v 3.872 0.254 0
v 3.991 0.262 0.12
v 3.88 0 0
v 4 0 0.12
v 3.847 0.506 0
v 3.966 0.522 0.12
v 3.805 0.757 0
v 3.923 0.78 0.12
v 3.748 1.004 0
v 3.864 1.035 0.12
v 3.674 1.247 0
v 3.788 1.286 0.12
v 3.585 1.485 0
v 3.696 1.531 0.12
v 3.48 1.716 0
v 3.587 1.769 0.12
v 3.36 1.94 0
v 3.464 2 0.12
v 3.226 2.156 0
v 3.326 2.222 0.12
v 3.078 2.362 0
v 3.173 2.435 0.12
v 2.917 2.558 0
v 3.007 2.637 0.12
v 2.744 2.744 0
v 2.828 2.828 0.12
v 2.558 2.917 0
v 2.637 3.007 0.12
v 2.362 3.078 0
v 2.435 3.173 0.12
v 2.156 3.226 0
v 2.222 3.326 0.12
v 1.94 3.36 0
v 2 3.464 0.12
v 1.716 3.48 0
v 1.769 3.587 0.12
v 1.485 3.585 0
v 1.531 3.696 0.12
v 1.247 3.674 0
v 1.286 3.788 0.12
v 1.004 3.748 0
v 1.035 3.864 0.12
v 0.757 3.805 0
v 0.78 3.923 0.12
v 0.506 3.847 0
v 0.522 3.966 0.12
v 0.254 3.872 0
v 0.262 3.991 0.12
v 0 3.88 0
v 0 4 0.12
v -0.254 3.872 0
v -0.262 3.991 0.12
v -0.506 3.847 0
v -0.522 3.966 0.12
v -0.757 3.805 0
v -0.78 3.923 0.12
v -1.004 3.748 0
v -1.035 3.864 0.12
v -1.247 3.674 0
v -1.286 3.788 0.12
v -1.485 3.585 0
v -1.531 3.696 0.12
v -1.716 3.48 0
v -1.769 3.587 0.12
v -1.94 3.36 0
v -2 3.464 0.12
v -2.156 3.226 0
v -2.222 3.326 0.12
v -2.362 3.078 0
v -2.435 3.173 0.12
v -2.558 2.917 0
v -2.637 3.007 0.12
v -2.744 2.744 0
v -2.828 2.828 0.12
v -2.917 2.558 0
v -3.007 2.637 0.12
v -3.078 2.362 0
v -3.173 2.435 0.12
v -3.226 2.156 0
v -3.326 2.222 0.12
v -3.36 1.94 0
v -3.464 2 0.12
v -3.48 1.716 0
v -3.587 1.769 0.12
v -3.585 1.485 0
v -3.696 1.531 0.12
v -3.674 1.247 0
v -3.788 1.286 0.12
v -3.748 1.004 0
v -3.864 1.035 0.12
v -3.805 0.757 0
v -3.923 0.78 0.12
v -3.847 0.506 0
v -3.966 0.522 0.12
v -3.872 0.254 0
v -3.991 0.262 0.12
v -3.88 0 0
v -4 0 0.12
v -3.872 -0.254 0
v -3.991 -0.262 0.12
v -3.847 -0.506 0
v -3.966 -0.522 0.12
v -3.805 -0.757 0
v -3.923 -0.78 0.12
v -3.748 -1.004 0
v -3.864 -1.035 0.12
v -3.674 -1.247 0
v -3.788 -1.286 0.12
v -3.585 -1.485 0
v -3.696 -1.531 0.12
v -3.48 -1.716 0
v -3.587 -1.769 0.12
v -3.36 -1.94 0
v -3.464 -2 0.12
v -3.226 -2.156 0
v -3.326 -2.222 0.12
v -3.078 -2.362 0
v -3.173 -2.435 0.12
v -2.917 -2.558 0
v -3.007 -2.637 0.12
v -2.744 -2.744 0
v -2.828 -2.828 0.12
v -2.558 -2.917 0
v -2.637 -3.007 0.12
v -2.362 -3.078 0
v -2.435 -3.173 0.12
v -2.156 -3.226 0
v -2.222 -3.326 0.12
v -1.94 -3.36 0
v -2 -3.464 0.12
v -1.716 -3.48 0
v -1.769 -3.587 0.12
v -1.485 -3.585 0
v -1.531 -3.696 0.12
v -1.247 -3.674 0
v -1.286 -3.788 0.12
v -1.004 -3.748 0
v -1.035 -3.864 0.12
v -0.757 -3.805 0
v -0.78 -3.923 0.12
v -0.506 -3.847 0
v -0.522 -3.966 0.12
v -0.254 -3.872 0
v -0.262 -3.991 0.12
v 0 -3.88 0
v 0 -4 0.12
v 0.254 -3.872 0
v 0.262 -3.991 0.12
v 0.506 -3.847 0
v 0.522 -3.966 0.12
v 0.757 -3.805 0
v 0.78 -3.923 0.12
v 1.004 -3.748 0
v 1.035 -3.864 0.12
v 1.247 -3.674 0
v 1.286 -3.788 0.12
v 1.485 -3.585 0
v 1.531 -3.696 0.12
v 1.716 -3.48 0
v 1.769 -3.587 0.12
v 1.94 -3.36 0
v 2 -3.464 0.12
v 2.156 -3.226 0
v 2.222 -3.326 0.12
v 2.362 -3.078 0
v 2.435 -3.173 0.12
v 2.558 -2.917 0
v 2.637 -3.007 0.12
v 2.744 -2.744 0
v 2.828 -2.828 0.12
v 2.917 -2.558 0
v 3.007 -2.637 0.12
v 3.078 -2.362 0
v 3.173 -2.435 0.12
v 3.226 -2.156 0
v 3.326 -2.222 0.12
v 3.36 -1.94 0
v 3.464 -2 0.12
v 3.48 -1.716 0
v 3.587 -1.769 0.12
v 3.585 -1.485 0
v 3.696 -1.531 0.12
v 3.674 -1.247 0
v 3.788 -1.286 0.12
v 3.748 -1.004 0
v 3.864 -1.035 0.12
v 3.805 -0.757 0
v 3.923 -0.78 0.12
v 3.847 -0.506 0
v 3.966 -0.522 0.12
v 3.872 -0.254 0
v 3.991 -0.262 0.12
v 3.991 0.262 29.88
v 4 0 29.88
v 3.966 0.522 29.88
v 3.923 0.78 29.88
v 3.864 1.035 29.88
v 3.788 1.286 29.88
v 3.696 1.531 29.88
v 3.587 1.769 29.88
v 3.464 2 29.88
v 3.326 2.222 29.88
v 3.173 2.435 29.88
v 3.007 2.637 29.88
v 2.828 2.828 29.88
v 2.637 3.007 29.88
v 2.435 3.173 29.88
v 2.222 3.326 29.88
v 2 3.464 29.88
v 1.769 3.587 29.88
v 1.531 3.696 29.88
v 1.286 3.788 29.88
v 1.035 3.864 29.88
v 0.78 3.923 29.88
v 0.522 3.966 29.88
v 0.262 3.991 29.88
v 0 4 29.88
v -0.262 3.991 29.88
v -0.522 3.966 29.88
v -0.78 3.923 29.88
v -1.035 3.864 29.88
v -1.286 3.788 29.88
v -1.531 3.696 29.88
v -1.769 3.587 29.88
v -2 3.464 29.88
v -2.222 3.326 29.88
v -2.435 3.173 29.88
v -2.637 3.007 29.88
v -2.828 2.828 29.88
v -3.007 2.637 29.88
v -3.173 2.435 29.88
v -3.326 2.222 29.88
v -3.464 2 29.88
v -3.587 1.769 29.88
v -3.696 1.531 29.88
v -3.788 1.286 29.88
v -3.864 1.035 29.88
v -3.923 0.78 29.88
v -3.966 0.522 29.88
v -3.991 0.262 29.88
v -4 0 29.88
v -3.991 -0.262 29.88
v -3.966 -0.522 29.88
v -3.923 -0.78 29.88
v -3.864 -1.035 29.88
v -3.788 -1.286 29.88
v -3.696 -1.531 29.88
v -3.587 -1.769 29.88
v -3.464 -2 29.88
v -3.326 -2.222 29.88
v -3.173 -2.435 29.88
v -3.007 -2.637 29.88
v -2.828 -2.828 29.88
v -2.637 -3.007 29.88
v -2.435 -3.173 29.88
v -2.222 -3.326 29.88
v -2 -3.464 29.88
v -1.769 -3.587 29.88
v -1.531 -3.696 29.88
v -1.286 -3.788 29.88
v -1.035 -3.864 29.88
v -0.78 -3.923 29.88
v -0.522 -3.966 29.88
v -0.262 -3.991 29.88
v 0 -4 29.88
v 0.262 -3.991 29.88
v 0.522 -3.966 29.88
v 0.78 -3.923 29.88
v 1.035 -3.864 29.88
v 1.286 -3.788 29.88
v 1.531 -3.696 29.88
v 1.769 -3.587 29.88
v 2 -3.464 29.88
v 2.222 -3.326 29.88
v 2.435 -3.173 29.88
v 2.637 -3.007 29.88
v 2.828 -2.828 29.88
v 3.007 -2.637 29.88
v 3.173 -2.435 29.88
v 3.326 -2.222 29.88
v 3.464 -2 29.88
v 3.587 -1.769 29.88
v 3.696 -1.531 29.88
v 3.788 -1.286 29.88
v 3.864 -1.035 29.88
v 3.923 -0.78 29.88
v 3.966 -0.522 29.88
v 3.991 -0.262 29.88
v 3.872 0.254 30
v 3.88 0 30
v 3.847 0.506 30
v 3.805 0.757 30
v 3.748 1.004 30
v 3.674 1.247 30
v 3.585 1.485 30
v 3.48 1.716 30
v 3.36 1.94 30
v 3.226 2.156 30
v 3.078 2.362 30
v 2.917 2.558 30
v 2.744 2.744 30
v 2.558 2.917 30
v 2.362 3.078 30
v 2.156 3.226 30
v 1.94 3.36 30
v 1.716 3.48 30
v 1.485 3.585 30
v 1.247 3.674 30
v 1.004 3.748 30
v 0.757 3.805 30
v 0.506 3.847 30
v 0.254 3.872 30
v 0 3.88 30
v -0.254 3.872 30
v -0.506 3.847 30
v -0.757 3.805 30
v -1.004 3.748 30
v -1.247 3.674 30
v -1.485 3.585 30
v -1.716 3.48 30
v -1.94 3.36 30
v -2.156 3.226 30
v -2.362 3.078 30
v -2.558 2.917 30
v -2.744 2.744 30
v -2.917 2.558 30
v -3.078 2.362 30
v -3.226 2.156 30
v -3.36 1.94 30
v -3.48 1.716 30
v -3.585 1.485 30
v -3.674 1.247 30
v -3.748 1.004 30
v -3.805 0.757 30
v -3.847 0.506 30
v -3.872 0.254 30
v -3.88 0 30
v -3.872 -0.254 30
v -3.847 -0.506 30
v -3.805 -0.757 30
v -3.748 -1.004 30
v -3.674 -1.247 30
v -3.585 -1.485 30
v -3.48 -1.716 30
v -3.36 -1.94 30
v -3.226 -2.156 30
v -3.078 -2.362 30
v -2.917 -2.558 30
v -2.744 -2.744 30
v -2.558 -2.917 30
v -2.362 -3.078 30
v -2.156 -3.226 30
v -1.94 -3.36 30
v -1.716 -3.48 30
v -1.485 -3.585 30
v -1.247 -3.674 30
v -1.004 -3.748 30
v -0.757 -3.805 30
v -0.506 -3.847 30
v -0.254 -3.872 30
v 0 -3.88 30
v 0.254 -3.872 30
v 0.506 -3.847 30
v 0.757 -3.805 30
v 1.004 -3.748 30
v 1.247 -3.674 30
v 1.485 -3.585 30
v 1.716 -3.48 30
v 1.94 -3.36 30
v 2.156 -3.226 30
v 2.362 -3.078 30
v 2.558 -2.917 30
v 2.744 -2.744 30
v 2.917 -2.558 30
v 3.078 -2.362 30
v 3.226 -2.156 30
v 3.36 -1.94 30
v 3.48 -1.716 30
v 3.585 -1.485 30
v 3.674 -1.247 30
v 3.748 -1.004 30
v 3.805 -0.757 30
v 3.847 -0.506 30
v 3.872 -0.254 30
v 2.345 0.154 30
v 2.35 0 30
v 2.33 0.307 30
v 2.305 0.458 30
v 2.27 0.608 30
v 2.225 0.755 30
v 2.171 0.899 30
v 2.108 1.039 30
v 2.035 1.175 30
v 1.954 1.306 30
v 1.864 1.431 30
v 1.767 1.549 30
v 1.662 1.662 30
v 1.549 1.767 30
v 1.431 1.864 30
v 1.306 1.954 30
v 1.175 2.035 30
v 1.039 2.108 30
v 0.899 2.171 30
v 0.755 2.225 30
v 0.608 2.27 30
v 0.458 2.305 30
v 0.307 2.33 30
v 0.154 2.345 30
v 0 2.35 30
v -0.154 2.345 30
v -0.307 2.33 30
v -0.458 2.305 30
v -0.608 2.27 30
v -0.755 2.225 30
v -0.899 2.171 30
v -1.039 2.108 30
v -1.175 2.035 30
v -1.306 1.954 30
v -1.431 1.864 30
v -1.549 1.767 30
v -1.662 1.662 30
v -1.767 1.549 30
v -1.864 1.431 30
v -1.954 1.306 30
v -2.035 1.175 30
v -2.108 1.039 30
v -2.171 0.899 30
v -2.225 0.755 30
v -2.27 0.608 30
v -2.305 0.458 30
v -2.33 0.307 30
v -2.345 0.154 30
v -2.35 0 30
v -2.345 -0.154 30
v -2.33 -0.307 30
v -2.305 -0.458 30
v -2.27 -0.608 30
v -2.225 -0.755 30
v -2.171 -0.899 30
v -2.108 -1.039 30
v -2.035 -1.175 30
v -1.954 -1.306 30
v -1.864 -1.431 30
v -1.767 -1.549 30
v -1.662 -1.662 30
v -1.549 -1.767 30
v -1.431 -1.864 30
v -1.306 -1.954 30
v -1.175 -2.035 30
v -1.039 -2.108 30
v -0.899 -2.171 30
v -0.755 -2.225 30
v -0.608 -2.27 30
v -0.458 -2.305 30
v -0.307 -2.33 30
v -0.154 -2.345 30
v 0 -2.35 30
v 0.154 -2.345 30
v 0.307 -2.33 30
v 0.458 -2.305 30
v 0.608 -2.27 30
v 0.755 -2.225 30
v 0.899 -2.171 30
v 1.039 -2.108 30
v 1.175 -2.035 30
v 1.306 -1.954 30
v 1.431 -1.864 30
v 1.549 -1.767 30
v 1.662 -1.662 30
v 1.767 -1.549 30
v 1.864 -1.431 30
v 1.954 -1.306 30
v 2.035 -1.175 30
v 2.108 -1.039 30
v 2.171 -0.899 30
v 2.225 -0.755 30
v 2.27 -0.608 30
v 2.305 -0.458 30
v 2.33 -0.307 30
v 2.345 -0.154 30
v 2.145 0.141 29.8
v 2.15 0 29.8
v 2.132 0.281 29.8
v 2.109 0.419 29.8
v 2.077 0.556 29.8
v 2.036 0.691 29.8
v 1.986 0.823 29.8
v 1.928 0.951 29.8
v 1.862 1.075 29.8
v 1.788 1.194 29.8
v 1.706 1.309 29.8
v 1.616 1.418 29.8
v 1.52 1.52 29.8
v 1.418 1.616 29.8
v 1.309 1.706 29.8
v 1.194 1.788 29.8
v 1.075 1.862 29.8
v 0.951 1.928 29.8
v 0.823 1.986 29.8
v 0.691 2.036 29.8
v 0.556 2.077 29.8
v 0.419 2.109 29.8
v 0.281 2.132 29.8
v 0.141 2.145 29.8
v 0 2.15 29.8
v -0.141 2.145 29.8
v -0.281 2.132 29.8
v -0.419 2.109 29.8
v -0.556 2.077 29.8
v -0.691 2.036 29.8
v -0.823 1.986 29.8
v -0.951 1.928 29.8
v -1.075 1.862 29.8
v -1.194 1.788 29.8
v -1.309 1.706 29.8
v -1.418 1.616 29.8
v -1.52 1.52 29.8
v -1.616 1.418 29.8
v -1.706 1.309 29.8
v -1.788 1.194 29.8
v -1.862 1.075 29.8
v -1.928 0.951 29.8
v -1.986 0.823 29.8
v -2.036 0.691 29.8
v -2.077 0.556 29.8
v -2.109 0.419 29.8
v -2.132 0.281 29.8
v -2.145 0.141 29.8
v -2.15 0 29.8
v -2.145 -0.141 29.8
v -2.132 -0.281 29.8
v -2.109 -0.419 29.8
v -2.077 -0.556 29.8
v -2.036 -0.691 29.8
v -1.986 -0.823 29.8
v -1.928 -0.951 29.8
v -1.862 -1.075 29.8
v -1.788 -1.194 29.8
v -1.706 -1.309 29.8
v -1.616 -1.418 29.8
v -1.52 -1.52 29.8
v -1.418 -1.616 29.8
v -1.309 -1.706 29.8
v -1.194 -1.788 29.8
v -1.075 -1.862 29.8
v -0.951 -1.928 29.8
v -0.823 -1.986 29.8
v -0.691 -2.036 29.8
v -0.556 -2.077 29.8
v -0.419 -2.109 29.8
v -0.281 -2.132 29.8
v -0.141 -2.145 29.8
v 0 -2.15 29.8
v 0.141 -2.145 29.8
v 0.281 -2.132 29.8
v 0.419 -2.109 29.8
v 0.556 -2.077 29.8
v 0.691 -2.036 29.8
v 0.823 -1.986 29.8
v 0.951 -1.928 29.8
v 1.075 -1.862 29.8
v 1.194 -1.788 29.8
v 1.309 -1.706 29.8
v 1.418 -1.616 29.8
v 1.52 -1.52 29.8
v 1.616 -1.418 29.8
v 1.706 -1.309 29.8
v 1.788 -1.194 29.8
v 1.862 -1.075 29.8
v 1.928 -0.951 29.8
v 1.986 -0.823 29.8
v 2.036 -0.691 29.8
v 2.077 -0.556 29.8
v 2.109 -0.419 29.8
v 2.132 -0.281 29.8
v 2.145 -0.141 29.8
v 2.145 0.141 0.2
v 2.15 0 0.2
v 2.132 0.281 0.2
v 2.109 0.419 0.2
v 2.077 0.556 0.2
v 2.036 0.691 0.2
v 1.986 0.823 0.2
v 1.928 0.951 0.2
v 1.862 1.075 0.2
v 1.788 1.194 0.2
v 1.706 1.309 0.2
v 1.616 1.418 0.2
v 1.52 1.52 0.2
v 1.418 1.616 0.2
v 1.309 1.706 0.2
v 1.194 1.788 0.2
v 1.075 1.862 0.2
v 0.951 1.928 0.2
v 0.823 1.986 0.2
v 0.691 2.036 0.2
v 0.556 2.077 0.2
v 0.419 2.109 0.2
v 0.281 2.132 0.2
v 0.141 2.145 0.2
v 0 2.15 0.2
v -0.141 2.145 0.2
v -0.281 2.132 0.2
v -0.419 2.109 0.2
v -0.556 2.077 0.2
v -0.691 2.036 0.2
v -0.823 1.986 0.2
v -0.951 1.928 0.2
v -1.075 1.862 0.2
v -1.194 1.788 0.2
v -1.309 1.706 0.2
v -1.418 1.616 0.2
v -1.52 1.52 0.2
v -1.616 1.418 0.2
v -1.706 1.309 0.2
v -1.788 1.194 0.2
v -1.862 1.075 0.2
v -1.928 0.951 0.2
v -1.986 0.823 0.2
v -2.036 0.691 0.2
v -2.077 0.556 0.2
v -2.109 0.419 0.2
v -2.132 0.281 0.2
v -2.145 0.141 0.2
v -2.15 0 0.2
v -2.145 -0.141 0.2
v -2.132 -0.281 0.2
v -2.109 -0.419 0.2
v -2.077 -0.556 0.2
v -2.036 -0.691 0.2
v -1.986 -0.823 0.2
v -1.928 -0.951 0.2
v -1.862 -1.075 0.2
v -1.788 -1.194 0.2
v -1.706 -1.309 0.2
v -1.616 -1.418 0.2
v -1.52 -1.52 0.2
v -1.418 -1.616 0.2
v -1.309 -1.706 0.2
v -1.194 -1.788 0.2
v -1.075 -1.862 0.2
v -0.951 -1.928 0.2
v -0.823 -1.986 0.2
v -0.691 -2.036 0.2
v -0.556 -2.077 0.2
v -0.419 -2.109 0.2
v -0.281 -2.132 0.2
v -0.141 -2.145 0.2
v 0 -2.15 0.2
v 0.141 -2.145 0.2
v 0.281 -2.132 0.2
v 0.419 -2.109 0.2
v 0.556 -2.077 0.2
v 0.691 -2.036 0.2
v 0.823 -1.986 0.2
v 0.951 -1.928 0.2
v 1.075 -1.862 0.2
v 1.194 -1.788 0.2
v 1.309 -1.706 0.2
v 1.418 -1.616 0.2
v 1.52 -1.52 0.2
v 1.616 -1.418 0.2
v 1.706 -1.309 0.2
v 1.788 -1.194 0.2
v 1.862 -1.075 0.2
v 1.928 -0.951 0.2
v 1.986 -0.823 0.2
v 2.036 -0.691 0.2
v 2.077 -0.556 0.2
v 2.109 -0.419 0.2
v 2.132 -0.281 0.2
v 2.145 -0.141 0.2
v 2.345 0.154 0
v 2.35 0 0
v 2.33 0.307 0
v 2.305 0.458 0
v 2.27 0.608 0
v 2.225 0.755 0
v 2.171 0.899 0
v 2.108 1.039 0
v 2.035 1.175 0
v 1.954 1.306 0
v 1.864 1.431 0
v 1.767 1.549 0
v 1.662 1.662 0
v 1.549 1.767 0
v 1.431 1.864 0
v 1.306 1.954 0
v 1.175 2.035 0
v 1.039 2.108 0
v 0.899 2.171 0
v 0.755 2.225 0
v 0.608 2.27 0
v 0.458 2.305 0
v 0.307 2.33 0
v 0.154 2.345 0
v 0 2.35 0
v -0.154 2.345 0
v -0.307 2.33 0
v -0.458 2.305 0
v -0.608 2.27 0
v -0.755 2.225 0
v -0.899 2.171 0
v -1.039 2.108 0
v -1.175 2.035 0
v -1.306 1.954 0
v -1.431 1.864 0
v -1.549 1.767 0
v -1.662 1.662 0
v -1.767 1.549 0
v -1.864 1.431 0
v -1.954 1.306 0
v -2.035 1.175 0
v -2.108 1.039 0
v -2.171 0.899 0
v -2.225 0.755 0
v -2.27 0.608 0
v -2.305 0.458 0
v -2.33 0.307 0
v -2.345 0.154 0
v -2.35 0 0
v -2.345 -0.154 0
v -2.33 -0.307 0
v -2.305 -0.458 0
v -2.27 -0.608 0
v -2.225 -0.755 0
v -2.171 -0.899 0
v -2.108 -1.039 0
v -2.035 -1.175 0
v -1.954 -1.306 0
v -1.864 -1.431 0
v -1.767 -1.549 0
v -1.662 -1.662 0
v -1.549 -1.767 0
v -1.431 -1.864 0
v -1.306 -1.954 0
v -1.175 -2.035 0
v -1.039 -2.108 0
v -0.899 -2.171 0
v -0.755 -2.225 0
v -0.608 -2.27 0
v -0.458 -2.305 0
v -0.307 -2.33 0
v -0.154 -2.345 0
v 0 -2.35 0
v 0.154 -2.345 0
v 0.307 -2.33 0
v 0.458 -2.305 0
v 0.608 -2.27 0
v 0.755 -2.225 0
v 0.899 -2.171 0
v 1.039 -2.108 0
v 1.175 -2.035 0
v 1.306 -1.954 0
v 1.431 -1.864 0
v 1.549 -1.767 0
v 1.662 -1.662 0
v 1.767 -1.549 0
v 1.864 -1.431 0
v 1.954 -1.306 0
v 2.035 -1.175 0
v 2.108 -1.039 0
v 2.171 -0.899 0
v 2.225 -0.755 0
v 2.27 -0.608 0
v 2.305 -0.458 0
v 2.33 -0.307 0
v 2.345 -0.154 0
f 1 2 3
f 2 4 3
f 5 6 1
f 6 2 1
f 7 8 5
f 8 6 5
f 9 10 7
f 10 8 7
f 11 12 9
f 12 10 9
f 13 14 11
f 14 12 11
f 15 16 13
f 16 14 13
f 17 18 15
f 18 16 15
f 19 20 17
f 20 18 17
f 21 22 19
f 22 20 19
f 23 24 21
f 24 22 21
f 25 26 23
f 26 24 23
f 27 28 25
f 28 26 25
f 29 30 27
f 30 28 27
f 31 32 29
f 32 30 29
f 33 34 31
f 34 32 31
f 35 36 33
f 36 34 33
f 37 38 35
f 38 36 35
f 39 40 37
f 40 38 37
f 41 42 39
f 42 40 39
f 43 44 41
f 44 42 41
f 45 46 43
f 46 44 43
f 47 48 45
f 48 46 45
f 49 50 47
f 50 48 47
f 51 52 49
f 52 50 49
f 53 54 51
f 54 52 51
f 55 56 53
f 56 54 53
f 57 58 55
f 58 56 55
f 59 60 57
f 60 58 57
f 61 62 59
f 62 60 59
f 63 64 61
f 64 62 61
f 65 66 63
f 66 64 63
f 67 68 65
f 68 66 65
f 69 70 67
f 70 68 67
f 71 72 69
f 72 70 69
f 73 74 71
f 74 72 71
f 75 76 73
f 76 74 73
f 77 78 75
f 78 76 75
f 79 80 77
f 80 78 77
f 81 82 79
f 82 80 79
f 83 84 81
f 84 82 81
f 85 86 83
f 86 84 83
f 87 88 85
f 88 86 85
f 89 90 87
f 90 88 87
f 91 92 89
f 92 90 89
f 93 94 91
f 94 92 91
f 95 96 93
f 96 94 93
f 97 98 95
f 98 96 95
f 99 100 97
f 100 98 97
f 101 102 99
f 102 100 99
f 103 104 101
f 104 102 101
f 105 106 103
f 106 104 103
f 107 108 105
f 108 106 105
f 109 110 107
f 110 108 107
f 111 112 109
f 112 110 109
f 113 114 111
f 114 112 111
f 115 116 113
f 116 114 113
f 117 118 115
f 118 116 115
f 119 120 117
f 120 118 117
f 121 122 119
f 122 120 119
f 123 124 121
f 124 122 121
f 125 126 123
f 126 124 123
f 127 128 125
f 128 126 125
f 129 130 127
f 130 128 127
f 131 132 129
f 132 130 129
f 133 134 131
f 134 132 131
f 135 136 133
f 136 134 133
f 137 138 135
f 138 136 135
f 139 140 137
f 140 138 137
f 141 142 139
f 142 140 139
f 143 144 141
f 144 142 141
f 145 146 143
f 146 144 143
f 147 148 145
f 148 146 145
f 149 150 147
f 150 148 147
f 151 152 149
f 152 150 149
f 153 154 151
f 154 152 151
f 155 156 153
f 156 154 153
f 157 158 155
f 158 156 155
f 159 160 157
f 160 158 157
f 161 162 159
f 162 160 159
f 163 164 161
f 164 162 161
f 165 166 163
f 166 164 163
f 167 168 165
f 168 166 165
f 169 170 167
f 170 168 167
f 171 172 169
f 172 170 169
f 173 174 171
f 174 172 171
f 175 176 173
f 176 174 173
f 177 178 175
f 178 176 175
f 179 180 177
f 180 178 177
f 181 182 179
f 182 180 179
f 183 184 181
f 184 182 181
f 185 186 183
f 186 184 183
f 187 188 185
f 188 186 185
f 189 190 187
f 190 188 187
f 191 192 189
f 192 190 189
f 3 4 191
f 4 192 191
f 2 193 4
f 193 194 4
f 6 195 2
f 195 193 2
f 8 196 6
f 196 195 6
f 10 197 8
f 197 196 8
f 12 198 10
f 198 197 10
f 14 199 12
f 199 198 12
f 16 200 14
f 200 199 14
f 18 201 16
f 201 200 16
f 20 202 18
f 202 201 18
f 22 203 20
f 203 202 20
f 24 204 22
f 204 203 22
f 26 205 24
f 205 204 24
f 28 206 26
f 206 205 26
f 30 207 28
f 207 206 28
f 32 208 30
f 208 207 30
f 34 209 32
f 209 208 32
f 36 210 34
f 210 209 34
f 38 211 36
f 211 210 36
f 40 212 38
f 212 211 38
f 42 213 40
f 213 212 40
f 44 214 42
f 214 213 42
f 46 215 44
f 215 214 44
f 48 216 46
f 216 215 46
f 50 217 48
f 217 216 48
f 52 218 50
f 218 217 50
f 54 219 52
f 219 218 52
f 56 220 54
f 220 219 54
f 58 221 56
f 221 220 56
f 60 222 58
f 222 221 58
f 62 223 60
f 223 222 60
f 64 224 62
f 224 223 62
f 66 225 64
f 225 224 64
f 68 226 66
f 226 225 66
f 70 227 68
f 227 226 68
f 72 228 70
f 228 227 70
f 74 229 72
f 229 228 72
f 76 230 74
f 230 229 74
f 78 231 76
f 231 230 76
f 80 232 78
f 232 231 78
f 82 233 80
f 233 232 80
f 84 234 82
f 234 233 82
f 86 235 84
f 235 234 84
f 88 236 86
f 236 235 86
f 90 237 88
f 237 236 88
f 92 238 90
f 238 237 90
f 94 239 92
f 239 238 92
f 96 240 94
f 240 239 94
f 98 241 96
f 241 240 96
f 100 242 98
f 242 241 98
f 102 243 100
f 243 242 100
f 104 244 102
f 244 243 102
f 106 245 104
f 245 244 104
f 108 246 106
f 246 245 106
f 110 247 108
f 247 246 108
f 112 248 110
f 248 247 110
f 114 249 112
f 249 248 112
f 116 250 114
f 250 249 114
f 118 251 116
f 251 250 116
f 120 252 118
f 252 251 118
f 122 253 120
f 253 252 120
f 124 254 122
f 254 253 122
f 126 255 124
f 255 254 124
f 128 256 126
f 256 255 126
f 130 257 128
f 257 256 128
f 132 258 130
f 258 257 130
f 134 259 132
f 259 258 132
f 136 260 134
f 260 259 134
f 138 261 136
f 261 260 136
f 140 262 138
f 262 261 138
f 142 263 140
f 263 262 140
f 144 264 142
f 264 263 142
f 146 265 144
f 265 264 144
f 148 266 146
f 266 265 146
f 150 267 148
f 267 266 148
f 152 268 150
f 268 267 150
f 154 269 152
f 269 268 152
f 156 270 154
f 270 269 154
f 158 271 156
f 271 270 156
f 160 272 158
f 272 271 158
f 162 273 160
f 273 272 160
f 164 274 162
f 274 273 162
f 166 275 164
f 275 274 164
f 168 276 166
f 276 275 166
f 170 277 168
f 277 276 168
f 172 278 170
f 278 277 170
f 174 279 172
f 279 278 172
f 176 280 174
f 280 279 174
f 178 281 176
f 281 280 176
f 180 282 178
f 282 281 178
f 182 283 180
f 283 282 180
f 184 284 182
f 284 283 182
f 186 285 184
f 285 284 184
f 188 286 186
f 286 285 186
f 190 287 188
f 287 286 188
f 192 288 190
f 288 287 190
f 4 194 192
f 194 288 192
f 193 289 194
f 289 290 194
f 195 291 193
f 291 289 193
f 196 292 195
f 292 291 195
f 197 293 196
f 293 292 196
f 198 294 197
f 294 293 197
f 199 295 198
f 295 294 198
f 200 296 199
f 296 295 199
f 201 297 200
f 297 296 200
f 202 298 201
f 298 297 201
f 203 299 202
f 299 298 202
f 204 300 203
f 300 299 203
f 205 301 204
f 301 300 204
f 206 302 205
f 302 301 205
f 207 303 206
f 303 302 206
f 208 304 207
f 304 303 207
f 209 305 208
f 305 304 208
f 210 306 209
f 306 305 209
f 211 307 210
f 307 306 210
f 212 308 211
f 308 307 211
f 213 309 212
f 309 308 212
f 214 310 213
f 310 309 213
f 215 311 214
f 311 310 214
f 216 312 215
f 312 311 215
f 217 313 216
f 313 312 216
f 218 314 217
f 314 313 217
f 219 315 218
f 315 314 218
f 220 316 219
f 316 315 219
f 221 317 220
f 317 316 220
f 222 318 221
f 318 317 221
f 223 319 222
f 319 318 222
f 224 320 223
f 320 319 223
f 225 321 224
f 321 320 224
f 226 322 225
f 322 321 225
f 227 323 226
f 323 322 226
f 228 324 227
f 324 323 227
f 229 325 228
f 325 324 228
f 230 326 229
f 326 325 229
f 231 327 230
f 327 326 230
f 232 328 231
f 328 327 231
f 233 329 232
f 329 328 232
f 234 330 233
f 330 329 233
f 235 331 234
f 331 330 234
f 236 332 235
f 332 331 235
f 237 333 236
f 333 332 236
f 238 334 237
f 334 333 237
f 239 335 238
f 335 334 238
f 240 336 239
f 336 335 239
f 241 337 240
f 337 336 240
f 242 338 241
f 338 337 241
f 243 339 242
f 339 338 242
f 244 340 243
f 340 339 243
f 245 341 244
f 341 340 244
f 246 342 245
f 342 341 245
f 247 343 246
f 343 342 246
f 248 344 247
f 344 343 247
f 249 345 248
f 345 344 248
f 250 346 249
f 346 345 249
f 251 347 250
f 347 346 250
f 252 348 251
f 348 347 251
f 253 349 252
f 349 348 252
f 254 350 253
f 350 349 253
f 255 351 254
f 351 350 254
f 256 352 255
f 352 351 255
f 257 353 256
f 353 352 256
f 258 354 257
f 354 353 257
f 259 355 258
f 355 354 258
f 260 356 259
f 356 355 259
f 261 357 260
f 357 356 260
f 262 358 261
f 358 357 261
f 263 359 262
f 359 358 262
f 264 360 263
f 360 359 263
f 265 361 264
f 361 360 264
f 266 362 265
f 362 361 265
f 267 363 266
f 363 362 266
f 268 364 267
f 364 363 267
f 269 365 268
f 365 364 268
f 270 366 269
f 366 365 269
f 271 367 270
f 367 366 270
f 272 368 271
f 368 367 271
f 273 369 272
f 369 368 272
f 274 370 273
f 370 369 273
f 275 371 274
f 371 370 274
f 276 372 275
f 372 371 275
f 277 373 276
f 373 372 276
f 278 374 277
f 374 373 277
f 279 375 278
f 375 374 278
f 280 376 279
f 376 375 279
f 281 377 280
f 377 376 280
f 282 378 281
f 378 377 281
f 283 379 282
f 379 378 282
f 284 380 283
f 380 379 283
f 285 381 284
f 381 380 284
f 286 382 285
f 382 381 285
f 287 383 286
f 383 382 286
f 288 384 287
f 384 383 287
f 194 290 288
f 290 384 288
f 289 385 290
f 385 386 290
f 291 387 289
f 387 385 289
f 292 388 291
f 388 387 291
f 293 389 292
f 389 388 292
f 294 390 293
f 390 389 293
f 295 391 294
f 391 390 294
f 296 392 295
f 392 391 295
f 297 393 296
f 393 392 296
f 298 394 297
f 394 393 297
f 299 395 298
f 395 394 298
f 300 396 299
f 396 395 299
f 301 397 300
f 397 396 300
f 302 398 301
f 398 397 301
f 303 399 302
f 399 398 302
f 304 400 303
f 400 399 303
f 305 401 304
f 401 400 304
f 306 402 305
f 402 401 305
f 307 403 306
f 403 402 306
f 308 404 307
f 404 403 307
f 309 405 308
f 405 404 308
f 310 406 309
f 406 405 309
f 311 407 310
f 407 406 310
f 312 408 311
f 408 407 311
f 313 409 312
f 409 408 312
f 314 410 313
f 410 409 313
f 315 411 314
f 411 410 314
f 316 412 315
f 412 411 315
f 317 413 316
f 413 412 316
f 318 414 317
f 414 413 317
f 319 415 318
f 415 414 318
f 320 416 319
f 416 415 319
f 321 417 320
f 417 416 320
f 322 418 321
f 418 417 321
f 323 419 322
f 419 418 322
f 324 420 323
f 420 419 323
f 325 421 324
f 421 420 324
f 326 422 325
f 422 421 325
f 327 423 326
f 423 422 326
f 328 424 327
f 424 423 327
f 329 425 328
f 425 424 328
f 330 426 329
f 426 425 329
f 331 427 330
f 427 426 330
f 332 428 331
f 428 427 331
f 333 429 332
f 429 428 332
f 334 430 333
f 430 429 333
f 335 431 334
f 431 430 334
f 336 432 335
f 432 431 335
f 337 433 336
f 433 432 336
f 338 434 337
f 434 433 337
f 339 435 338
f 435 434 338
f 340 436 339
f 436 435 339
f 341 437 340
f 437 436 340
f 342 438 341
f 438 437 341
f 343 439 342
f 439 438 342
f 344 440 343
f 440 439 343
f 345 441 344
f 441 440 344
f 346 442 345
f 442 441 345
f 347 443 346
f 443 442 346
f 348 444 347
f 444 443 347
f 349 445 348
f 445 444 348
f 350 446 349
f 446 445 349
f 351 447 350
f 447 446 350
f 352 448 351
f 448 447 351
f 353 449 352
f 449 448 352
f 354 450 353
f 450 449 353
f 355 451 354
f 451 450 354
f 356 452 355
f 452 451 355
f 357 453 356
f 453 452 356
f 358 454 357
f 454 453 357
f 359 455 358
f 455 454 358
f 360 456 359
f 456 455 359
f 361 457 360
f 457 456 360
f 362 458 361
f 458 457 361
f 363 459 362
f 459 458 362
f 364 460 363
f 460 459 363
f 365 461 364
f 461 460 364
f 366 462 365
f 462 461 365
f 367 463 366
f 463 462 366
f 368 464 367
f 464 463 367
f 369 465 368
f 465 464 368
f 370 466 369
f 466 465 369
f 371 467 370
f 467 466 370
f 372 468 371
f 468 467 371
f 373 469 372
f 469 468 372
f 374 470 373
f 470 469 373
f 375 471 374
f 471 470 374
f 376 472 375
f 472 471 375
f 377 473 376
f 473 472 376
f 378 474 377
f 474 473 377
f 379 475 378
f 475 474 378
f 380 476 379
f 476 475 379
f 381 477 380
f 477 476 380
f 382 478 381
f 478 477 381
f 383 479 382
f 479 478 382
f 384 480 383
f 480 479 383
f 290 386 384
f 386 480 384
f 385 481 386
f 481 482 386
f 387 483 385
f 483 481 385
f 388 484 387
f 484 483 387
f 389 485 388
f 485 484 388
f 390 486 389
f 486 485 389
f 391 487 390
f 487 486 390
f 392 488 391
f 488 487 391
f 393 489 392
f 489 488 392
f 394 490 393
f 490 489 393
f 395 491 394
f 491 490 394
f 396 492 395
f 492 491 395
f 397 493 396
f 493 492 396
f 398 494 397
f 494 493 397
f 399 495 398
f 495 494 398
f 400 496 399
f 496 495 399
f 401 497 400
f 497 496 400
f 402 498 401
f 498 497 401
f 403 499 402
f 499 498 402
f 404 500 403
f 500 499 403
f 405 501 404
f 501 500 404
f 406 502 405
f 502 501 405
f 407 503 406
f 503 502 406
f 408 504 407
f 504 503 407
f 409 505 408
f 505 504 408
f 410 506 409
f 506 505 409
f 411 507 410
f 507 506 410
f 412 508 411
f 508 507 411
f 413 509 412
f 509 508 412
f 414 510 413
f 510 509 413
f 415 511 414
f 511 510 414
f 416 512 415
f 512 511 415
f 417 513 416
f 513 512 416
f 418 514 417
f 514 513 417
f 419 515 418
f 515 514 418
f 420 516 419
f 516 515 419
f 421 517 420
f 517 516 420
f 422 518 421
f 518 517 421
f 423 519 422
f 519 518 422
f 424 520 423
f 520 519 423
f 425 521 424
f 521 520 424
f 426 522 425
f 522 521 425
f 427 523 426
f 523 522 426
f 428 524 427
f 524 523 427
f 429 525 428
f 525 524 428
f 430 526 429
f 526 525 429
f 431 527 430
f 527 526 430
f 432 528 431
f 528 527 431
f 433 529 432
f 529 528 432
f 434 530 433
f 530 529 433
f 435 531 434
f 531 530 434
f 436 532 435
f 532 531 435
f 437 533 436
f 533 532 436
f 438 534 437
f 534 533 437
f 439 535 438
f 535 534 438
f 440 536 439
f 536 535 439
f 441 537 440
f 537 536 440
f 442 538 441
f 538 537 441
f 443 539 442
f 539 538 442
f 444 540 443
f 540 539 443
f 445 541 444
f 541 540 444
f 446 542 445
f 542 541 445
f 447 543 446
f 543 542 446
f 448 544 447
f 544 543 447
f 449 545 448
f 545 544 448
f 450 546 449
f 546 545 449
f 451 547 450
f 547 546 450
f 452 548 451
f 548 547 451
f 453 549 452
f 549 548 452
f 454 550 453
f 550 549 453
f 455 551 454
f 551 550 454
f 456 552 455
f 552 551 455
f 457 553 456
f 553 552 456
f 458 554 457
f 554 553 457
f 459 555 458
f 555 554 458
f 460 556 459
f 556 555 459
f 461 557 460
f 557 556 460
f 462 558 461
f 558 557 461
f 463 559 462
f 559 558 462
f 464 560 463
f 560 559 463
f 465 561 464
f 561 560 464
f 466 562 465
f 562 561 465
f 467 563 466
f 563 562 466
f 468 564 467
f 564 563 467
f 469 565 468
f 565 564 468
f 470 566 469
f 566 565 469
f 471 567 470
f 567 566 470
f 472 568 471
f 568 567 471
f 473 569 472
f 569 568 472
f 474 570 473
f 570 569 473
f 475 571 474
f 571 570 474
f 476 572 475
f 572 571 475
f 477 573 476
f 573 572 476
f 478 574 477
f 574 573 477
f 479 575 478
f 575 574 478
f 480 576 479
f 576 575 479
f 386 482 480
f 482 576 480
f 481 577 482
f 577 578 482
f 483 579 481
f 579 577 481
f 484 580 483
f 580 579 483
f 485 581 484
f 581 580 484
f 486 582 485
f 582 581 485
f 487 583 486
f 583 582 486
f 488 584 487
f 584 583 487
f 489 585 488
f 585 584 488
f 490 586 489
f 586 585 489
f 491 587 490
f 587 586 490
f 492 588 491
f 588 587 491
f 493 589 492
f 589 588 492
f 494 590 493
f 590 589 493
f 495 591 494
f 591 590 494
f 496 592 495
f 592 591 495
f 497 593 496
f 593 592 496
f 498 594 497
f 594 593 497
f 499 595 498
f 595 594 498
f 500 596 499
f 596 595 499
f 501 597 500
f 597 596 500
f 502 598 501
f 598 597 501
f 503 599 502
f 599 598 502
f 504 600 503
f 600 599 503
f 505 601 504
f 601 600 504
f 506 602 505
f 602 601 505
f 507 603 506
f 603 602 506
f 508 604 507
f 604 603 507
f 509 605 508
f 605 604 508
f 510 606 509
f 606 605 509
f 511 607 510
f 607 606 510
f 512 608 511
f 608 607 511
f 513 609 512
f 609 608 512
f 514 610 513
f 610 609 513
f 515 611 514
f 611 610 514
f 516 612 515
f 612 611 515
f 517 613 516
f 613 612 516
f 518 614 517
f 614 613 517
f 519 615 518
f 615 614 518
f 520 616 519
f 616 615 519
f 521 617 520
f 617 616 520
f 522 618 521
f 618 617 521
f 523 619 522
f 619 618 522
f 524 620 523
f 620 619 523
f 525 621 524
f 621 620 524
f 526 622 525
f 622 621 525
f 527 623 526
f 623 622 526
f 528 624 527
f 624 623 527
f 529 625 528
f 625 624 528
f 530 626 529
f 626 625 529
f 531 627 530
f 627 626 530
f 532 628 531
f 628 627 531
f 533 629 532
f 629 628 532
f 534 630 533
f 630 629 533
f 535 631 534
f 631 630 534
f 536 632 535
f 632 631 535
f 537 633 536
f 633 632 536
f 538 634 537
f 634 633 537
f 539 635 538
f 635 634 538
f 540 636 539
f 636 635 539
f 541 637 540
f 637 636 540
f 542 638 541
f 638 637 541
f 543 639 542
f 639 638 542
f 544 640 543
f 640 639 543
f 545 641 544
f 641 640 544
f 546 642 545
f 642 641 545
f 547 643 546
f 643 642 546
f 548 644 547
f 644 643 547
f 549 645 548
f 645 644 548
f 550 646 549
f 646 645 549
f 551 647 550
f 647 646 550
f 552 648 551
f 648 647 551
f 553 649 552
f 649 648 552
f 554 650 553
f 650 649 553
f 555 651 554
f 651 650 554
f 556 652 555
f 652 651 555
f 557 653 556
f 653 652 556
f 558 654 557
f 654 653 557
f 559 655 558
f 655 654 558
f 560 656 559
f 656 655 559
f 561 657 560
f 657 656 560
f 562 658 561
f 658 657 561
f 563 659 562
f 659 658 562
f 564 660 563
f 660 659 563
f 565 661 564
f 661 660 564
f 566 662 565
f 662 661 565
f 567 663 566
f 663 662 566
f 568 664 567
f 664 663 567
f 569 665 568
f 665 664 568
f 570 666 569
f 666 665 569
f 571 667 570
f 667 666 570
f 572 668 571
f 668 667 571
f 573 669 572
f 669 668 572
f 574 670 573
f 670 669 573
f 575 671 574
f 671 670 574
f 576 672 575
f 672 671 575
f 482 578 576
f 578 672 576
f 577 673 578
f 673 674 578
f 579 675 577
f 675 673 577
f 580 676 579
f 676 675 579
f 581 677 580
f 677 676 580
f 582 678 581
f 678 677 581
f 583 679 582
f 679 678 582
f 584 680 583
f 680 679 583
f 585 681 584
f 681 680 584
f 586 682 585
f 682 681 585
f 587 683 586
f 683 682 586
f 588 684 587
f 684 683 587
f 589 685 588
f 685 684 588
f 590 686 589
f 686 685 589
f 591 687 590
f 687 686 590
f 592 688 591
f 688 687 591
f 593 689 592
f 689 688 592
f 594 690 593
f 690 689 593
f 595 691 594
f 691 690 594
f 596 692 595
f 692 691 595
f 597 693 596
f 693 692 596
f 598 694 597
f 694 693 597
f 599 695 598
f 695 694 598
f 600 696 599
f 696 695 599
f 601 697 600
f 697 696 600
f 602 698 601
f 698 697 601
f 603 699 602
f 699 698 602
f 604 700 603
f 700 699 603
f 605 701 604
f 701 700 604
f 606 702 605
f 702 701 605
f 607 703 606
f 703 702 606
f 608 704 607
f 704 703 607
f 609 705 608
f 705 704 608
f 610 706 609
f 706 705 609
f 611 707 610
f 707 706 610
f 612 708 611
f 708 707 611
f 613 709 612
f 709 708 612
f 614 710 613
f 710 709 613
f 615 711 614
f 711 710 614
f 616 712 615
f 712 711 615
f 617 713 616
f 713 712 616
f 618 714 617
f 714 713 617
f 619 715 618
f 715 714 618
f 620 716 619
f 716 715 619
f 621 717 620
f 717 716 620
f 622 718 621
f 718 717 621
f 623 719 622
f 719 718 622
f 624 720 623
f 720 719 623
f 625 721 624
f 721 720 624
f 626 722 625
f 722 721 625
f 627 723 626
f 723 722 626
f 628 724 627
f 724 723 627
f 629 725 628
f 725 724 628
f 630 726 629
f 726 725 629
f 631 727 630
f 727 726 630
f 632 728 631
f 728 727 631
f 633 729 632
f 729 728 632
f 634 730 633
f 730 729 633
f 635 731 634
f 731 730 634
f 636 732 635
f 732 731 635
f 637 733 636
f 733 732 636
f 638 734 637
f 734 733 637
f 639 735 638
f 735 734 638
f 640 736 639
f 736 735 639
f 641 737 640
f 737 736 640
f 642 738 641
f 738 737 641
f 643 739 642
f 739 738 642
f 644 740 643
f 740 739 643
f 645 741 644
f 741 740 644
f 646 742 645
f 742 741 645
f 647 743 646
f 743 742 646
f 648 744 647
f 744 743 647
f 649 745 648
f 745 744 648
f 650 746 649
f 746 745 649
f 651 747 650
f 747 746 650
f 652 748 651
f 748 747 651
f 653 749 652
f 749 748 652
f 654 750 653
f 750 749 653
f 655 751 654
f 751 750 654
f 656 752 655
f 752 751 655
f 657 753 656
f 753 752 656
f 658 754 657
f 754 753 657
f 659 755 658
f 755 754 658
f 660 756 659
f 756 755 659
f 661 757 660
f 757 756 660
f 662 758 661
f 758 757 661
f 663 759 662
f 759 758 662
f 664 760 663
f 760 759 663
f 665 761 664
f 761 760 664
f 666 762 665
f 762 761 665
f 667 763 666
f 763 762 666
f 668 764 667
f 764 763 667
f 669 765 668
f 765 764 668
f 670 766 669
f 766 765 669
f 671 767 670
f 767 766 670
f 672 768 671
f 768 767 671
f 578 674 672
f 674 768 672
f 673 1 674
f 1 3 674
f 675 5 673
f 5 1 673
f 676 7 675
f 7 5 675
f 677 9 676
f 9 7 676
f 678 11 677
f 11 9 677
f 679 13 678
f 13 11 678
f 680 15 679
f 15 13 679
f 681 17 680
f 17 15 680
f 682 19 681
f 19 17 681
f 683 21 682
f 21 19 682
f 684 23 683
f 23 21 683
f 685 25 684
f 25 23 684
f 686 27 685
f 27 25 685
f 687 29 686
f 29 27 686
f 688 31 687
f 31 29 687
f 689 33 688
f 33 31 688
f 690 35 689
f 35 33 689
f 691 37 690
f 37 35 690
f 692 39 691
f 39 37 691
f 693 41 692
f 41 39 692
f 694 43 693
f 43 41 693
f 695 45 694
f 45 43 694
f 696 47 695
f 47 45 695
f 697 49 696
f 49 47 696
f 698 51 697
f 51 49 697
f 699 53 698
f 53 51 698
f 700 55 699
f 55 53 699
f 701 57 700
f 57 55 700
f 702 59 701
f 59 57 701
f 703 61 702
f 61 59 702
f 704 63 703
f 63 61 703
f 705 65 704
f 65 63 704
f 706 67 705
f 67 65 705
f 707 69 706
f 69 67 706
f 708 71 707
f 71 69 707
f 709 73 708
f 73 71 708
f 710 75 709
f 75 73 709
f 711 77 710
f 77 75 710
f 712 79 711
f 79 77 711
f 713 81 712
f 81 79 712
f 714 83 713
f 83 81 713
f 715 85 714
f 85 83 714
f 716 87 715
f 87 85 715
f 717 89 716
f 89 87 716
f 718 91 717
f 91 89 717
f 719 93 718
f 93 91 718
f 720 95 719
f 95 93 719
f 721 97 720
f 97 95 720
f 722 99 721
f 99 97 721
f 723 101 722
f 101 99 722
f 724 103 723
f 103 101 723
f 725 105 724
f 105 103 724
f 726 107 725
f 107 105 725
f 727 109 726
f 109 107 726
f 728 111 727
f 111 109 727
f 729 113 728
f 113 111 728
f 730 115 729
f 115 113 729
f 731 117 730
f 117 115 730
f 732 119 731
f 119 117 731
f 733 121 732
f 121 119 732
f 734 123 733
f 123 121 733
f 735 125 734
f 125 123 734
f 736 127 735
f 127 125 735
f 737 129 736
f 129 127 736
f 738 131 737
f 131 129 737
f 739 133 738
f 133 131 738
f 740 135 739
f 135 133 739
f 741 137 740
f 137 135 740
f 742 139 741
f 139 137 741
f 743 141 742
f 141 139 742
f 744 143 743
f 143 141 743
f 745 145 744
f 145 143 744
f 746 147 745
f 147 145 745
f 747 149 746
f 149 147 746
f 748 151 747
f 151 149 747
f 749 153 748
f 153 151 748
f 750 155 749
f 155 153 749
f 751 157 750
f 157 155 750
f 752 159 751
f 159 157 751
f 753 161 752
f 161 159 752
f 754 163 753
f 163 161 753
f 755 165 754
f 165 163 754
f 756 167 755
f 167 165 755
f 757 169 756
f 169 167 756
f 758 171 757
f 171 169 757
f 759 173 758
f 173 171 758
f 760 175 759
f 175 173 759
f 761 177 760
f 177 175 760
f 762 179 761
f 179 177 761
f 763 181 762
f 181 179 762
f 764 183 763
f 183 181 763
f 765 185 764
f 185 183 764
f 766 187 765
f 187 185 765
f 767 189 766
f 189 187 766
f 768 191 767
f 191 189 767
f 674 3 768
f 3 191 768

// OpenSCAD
// OOMP generic catalogue model; units: mm.
// Stud length is additional to body depth. Tapping depths are model assumptions.
variant = "full"; // [full, display]
family = "spacer";
connection_type = "plain";
depth_mm = 30;
stud_length_mm = 0;
tapped_depth_mm = 0;
bore_mm = 4.3;
outer_diameter_mm = 8;
across_flats_mm = 6;
thread_nominal_diameter_mm = 3;
thread_pitch_mm = 0.5;
edge_chamfer_mm = 0.12;
mouth_chamfer_mm = 0.2;
angular_segments = 96;
samples_per_pitch = 16;

// Boundary travels up the outside, then down any tapped/plain bore.
// Equal-height rings at shoulders form the annular shoulder faces.
n = angular_segments;
threaded = family == "standoff";
has_stud = connection_type == "stud_to_tapped" || connection_type == "stud_to_stud";
two_studs = connection_type == "stud_to_stud";
through = !threaded || connection_type == "tapped_to_tapped";
pitch = thread_pitch_mm;
diameter = threaded ? thread_nominal_diameter_mm : bore_mm;
minor = diameter - 5*sqrt(3)*pitch/8;
transition = mouth_chamfer_mm + (threaded ? 5*sqrt(3)*pitch/16 : 0);
tip_chamfer = mouth_chamfer_mm + 17*sqrt(3)*pitch/48;
function sorted(v) = len(v)<=1 ? v : let(p=v[0])
    concat(sorted([for(x=v) if(x<p-1e-8) x]), [p], sorted([for(x=v) if(x>p+1e-8) x]));
function reverse(v) = [for(i=[len(v)-1:-1:0]) v[i]];
function theta(i) = i*360/n;
function fract(x) = x-floor(x);
function phase_distance(i,z) = abs(fract(z/pitch-theta(i)/360+0.5)-0.5);
function thread_r(i,z) = minor/2 + min(5*sqrt(3)*pitch/16,
    max(0,(phase_distance(i,z)-0.125)*pitch*sqrt(3)));
function stud_r(i,z,tip) = min(diameter/2 - (variant=="full" ?
    min(17*sqrt(3)*pitch/48,max(0,(phase_distance(i,z)-0.0625)*pitch*sqrt(3))) : 0),
    diameter/2-tip_chamfer+abs(z-tip));
function body_r(i,z) = (threaded ? across_flats_mm/2/cos(theta(i)%60-30) : outer_diameter_mm/2)
    - max(0,edge_chamfer_mm-min(z,depth_mm-z));
function bore_r(i,z) = max(threaded ? (variant=="full" ? thread_r(i,z) : minor/2) : diameter/2,
    diameter/2+mouth_chamfer_mm-(through ? min(z,depth_mm-z) : depth_mm-z));
function stud_z(a,b,tip) = let(count=variant=="full" ? ceil(stud_length_mm/pitch*samples_per_pitch) : 1)
    sorted(concat([for(i=[0:count]) a+(b-a)*i/count], [tip==a ? tip+tip_chamfer : tip-tip_chamfer]));
body_z = sorted([0,edge_chamfer_mm,depth_mm-edge_chamfer_mm,depth_mm]);
low = through ? 0 : depth_mm-tapped_depth_mm;
count = threaded && variant=="full" ? ceil((depth_mm-low)/pitch*samples_per_pitch) : 1;
bore_z = two_studs ? [] : reverse(sorted(concat(
    [for(i=[0:count]) low+(depth_mm-low)*i/count],
    [depth_mm-mouth_chamfer_mm,depth_mm-transition],
    through ? [mouth_chamfer_mm,transition] : [])));
// Ring descriptors: [height, kind, tip]. Kind: 0 body, 1 stud, 2 bore.
rings = concat(
    has_stud ? [for(z=stud_z(-stud_length_mm,0,-stud_length_mm)) [z,1,-stud_length_mm]] : [],
    [for(z=body_z) [z,0,0]],
    two_studs ? [for(z=stud_z(depth_mm,depth_mm+stud_length_mm,depth_mm+stud_length_mm)) [z,1,depth_mm+stud_length_mm]] : [],
    [for(z=bore_z) [z,2,0]]);
function radius(i,ring) = ring[1]==0 ? body_r(i,ring[0]) :
    ring[1]==1 ? stud_r(i,ring[0],ring[2]) : bore_r(i,ring[0]);
points = concat([for(ring=rings) for(i=[0:n-1])
    [radius(i,ring)*cos(theta(i)),radius(i,ring)*sin(theta(i)),ring[0]]],
    through ? [] : [[0,0,rings[0][0]],[0,0,rings[len(rings)-1][0]]]);
center = len(rings)*n;
last = (len(rings)-1)*n;
// OpenSCAD winding is opposite to STL winding.
faces = concat(
    [for(j=[0:len(rings)-(through ? 1 : 2)]) for(i=[0:n-1]) each
        let(a=j*n+i,b=j*n+(i+1)%n,c=((j+1)%len(rings))*n+(i+1)%n,d=((j+1)%len(rings))*n+i)
        [[a,c,b],[a,d,c]]],
    through ? [] : [for(i=[0:n-1]) each let(k=(i+1)%n)
        [[center,i,k],[center+1,last+k,last+i]]]);
assert(family=="spacer" || family=="standoff");
assert(!threaded || connection_type=="tapped_to_tapped" || has_stud);
assert(depth_mm>0 && diameter>0 && pitch>0);
assert(variant=="full" || variant=="display");
assert(n>=24 && n%12==0 && samples_per_pitch>=8);
assert(mouth_chamfer_mm>0 && mouth_chamfer_mm<depth_mm/2);
assert(edge_chamfer_mm>=0 && edge_chamfer_mm<depth_mm/2);
assert(diameter+4*max(mouth_chamfer_mm,edge_chamfer_mm) < (threaded ? across_flats_mm : outer_diameter_mm));
assert(!has_stud || stud_length_mm>2*mouth_chamfer_mm);
assert(!through || !threaded || 2*transition<depth_mm);
assert(connection_type!="stud_to_tapped" || (tapped_depth_mm>transition && tapped_depth_mm<depth_mm));
color([0.86,0.85,0.81]) polyhedron(points=points,faces=faces,convexity=20);
